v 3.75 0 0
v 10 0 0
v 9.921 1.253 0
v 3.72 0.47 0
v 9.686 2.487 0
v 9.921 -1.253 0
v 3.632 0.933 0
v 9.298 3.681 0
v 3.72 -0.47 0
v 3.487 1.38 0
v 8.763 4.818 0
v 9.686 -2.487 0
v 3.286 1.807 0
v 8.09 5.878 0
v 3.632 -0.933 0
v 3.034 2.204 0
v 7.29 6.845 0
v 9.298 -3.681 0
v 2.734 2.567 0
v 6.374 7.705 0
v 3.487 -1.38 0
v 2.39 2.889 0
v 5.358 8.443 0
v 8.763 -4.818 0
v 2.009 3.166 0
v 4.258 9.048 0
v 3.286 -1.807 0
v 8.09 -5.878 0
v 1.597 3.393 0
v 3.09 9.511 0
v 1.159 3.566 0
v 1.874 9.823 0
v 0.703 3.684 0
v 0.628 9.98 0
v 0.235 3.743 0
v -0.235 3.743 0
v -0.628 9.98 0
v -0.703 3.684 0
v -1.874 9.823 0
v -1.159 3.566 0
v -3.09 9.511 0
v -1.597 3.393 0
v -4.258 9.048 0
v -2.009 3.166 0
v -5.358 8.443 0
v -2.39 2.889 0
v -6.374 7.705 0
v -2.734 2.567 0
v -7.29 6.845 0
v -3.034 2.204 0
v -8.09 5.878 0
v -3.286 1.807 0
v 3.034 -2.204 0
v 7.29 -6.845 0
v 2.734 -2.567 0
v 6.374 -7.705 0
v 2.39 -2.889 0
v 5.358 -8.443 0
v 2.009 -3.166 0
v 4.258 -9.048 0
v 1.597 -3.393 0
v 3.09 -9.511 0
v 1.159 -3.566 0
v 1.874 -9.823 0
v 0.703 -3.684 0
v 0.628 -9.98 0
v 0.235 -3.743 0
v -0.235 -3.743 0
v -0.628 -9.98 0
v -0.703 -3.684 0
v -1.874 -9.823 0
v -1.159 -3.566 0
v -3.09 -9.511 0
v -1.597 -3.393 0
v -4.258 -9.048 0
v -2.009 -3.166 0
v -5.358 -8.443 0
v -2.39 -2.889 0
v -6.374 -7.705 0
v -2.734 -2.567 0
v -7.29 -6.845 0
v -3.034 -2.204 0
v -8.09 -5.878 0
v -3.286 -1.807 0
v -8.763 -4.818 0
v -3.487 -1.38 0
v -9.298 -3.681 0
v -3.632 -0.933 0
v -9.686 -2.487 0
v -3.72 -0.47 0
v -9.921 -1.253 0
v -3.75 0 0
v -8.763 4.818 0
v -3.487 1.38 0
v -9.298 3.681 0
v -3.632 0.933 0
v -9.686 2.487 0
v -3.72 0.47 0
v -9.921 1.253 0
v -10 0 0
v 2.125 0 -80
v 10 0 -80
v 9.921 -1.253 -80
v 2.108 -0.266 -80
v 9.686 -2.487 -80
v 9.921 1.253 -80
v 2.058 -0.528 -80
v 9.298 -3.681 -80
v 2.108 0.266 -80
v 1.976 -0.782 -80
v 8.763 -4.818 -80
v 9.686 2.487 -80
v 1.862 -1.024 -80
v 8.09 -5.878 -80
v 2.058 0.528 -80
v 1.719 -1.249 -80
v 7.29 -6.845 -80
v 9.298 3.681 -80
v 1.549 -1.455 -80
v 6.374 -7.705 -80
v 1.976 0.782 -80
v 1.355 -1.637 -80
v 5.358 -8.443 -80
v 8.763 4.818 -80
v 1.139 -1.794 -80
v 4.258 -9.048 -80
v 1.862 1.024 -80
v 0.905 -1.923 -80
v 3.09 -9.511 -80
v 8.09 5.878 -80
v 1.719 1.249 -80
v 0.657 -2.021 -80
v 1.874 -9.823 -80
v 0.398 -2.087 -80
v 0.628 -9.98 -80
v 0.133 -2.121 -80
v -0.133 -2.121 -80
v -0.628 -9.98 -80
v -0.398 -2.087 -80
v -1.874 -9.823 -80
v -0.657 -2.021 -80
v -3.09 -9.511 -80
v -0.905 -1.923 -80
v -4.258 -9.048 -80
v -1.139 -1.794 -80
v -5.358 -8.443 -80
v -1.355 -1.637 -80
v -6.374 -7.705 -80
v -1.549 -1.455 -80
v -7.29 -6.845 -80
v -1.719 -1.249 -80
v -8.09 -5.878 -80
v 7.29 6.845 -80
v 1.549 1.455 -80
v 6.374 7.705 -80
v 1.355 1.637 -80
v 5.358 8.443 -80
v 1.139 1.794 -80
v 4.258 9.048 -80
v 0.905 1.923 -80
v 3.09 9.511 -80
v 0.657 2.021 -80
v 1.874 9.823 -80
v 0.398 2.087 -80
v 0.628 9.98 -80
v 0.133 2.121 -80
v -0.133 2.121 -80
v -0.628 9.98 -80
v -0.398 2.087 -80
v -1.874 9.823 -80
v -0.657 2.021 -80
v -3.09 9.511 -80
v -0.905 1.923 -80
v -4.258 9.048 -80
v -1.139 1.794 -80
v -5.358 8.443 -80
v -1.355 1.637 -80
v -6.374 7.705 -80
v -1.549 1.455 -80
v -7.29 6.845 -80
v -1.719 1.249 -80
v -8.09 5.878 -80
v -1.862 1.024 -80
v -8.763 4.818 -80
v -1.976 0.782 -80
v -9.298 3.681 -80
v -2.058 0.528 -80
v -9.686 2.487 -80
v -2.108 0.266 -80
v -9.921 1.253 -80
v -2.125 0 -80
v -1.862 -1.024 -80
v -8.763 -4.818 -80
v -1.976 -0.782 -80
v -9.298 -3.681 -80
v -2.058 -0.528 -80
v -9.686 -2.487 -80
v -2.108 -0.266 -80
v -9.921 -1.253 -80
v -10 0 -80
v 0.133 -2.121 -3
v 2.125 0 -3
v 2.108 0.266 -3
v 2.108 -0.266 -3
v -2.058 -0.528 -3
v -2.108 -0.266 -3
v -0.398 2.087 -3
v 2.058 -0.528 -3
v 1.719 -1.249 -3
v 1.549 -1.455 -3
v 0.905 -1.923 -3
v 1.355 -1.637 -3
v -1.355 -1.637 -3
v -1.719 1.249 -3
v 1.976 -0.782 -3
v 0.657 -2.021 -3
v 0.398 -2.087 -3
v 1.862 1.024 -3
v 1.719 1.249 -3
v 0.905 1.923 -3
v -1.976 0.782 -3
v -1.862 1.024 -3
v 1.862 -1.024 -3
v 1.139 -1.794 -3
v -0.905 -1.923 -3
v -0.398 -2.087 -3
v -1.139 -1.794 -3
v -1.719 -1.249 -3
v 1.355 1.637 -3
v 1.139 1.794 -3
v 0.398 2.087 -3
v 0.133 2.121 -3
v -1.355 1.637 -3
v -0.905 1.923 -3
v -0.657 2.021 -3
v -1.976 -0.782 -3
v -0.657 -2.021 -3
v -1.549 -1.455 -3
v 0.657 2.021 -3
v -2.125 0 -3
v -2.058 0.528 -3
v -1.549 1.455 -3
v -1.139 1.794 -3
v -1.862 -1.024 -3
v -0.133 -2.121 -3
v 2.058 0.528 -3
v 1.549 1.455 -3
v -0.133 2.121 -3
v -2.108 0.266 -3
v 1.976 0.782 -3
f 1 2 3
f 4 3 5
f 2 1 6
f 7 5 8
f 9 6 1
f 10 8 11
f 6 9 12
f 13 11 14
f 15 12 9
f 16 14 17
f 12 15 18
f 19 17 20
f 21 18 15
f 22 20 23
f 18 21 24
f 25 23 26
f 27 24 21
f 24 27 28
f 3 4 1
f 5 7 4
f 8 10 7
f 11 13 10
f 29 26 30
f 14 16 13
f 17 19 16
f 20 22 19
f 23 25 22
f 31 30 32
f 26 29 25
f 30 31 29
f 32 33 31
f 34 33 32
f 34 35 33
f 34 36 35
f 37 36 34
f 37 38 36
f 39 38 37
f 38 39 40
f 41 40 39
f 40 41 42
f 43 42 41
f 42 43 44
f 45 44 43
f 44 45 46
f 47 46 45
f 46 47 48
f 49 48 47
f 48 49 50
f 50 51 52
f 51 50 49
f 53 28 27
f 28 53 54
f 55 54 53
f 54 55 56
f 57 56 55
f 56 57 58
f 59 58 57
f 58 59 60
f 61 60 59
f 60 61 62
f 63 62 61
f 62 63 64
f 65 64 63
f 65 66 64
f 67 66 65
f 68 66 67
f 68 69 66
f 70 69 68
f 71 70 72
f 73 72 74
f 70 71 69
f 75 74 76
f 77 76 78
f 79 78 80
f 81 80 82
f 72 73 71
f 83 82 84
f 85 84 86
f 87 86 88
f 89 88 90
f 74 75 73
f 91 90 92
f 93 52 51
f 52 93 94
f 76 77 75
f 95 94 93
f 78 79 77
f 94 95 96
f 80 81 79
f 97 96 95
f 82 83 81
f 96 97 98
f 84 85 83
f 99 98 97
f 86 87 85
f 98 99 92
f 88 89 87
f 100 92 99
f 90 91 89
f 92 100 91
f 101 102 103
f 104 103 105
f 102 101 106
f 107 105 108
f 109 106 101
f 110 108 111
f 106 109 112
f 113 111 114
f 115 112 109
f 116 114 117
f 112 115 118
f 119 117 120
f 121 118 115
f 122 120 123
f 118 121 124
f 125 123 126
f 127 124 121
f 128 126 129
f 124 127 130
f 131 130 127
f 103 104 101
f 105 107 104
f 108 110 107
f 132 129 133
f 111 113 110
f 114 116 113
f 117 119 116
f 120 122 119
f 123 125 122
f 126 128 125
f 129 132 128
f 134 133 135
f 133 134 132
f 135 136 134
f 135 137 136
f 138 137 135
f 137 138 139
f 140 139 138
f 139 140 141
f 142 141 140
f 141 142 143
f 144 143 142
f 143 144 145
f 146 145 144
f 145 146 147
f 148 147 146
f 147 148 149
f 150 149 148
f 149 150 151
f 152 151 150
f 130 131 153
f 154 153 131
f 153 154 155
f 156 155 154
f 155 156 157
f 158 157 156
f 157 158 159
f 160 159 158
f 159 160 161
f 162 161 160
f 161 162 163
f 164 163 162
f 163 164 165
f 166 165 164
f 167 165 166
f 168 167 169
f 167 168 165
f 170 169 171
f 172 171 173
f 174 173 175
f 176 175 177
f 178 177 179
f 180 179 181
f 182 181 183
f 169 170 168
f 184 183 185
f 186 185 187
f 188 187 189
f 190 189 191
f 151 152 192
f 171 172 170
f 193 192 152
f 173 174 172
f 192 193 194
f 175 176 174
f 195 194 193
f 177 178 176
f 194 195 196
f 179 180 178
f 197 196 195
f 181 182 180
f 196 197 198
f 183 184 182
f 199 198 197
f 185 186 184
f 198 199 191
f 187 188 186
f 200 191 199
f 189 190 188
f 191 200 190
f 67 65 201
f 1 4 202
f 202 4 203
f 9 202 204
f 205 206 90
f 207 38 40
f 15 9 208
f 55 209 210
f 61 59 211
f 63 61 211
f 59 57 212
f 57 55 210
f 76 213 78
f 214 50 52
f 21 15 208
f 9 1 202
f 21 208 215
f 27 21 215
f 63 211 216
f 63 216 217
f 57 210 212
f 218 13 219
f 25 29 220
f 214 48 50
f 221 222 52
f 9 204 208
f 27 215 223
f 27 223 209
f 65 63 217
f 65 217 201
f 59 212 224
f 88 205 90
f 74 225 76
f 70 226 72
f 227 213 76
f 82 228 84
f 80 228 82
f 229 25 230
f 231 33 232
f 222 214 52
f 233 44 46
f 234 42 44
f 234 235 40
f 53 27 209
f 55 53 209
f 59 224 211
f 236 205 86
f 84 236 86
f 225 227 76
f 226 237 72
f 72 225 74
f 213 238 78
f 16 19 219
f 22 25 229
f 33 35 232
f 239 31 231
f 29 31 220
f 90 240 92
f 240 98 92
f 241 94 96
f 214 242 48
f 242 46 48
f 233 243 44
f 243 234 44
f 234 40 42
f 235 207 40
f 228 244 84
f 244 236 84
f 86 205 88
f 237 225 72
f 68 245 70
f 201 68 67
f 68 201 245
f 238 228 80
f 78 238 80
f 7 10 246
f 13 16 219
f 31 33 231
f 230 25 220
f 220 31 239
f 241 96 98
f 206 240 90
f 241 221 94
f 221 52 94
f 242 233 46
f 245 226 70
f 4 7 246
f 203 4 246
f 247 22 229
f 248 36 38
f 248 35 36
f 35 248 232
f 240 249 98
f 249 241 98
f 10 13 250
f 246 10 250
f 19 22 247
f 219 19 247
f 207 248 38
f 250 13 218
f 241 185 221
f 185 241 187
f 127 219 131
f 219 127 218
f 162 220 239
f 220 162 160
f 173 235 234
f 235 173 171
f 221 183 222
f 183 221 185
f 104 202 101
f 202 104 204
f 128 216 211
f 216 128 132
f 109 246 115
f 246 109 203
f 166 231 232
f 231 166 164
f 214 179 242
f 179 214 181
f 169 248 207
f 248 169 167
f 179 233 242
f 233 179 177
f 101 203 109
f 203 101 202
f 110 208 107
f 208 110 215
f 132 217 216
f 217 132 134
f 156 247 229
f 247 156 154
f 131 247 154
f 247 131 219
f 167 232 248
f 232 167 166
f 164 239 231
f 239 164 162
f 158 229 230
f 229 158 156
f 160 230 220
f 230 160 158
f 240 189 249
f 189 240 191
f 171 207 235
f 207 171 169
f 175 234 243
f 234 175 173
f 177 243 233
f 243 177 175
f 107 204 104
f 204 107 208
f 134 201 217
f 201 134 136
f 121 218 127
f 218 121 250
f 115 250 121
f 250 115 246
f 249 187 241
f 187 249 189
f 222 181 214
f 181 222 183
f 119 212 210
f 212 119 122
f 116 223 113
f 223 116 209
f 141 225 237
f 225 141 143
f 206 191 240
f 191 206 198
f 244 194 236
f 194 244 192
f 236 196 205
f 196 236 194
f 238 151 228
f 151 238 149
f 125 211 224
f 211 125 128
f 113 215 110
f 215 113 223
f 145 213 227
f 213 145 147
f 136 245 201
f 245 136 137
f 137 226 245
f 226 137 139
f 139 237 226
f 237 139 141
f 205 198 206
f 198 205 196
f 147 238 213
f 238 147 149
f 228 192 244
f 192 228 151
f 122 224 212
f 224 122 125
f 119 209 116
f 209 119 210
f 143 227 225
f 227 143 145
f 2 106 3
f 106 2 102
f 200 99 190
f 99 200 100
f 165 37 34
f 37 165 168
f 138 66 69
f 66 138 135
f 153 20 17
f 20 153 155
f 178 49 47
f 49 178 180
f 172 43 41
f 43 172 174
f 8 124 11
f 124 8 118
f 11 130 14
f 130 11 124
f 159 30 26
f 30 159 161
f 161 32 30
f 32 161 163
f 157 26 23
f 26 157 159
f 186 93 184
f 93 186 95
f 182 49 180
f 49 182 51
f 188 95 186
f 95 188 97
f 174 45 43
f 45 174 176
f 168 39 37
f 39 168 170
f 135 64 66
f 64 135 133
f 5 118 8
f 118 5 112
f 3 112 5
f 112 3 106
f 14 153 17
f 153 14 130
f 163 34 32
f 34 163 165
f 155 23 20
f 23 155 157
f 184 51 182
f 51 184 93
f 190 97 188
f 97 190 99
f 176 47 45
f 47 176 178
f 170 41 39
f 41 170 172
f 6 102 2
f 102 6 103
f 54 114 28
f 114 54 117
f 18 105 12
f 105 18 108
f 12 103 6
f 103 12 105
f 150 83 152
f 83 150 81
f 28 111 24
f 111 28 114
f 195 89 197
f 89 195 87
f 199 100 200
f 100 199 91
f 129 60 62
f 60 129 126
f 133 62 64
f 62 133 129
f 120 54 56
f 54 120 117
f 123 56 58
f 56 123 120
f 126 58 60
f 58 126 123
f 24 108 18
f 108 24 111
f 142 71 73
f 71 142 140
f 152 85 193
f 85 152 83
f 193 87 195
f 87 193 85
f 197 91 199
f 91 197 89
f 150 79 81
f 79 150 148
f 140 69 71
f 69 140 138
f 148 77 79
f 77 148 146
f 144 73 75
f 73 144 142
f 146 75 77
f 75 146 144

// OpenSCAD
$fn = 50;


difference() {
	union() {
		translate(v = [0, 0, -80.0000000000]) {
			cylinder(h = 80, r = 10.0000000000);
		}
		cylinder(h = 0, r = 13.0000000000);
	}
	union() {
		translate(v = [0, 0, 0]) {
			rotate(a = [0, 0, 0]) {
				difference() {
					union() {
						#translate(v = [0, 0, -80.0000000000]) {
							cylinder(h = 80, r = 2.0000000000);
						}
						#translate(v = [0, 0, -3]) {
							cylinder(h = 3, r = 10.0000000000, r1 = 2.1250000000, r2 = 3.7500000000);
						}
						#translate(v = [0, 0, -80.0000000000]) {
							cylinder(h = 80, r = 2.1250000000);
						}
						#translate(v = [0, 0, -80.0000000000]) {
							cylinder(h = 80, r = 2.0000000000);
						}
					}
					union();
				}
			}
		}
	}
}
